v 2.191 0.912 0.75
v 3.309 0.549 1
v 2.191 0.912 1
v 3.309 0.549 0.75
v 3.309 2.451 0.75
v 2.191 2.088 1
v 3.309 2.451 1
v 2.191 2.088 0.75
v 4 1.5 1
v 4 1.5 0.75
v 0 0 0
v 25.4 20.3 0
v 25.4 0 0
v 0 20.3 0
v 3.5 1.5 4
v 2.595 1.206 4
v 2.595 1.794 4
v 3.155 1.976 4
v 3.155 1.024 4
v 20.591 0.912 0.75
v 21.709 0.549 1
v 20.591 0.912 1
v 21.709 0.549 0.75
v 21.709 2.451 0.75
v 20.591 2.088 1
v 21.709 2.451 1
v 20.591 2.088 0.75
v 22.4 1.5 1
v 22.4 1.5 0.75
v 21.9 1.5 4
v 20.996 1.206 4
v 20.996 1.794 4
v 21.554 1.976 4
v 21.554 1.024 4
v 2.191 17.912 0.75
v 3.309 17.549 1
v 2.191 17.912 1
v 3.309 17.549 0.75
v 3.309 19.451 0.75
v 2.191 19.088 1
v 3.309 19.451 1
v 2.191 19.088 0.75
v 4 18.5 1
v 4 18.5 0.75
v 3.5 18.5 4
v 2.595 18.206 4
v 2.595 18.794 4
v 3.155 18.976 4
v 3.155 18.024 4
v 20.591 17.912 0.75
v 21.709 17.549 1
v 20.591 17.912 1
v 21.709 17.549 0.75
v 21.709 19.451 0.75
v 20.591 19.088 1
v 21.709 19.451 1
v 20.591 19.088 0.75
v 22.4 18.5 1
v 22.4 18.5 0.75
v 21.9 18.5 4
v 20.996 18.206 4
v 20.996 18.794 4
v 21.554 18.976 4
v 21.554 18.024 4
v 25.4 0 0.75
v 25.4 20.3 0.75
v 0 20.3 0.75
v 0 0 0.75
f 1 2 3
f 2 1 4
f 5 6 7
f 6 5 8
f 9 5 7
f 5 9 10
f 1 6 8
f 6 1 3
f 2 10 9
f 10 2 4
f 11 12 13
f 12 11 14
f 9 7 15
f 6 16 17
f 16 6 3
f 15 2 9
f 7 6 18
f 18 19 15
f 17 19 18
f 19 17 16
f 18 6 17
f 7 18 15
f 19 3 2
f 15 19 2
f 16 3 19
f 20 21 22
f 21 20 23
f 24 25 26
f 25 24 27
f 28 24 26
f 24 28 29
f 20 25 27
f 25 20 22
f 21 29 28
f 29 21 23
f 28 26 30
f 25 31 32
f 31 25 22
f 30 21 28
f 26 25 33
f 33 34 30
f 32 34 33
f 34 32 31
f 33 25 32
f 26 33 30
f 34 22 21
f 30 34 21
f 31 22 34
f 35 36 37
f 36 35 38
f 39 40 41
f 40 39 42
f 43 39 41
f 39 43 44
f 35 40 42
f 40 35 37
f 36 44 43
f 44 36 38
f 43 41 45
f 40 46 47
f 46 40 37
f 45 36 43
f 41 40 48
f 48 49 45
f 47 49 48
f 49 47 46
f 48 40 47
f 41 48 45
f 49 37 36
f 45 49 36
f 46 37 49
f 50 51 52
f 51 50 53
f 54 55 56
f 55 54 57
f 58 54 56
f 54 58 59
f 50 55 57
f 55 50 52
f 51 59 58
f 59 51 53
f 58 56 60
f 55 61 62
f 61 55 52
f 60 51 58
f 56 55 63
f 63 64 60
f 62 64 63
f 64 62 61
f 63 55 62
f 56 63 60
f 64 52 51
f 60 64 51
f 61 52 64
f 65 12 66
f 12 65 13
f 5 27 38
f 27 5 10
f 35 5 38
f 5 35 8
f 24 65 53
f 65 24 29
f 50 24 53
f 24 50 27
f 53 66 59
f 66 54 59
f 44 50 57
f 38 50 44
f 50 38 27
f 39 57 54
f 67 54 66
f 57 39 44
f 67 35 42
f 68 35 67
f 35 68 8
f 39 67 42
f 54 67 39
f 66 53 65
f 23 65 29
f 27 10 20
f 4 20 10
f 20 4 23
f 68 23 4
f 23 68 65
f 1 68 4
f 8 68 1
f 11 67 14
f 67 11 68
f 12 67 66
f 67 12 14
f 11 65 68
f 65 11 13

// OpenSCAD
module xadow_pin(){
    union(){
        translate([0,0,0]) cylinder(h=1,r1=1,r2=1);
        translate([0,0,1]) cylinder(h=3,r1=1,r2=.5);
    }
}
module xadow_gsm(){
    difference(){    
    union(){
            //Xadow madule
            //turns out the GSM module has exactly  25.37mm X 20.30mm / 1’’ X 0.8’’
            //approx 2mm hole 17.5mm x18mm
            cube([25.4,20.3,.75],center=false);
            translate([3,1.5,0]) xadow_pin();
            translate([21.4,1.5,0]) xadow_pin();
            translate([3,18.5,0]) xadow_pin();
            translate([21.4,18.5,0]) xadow_pin();
            }
            *translate([25.4,20.3,0]) cylinder(h=1,r1=1,r2=1);
        }
}

xadow_gsm();
